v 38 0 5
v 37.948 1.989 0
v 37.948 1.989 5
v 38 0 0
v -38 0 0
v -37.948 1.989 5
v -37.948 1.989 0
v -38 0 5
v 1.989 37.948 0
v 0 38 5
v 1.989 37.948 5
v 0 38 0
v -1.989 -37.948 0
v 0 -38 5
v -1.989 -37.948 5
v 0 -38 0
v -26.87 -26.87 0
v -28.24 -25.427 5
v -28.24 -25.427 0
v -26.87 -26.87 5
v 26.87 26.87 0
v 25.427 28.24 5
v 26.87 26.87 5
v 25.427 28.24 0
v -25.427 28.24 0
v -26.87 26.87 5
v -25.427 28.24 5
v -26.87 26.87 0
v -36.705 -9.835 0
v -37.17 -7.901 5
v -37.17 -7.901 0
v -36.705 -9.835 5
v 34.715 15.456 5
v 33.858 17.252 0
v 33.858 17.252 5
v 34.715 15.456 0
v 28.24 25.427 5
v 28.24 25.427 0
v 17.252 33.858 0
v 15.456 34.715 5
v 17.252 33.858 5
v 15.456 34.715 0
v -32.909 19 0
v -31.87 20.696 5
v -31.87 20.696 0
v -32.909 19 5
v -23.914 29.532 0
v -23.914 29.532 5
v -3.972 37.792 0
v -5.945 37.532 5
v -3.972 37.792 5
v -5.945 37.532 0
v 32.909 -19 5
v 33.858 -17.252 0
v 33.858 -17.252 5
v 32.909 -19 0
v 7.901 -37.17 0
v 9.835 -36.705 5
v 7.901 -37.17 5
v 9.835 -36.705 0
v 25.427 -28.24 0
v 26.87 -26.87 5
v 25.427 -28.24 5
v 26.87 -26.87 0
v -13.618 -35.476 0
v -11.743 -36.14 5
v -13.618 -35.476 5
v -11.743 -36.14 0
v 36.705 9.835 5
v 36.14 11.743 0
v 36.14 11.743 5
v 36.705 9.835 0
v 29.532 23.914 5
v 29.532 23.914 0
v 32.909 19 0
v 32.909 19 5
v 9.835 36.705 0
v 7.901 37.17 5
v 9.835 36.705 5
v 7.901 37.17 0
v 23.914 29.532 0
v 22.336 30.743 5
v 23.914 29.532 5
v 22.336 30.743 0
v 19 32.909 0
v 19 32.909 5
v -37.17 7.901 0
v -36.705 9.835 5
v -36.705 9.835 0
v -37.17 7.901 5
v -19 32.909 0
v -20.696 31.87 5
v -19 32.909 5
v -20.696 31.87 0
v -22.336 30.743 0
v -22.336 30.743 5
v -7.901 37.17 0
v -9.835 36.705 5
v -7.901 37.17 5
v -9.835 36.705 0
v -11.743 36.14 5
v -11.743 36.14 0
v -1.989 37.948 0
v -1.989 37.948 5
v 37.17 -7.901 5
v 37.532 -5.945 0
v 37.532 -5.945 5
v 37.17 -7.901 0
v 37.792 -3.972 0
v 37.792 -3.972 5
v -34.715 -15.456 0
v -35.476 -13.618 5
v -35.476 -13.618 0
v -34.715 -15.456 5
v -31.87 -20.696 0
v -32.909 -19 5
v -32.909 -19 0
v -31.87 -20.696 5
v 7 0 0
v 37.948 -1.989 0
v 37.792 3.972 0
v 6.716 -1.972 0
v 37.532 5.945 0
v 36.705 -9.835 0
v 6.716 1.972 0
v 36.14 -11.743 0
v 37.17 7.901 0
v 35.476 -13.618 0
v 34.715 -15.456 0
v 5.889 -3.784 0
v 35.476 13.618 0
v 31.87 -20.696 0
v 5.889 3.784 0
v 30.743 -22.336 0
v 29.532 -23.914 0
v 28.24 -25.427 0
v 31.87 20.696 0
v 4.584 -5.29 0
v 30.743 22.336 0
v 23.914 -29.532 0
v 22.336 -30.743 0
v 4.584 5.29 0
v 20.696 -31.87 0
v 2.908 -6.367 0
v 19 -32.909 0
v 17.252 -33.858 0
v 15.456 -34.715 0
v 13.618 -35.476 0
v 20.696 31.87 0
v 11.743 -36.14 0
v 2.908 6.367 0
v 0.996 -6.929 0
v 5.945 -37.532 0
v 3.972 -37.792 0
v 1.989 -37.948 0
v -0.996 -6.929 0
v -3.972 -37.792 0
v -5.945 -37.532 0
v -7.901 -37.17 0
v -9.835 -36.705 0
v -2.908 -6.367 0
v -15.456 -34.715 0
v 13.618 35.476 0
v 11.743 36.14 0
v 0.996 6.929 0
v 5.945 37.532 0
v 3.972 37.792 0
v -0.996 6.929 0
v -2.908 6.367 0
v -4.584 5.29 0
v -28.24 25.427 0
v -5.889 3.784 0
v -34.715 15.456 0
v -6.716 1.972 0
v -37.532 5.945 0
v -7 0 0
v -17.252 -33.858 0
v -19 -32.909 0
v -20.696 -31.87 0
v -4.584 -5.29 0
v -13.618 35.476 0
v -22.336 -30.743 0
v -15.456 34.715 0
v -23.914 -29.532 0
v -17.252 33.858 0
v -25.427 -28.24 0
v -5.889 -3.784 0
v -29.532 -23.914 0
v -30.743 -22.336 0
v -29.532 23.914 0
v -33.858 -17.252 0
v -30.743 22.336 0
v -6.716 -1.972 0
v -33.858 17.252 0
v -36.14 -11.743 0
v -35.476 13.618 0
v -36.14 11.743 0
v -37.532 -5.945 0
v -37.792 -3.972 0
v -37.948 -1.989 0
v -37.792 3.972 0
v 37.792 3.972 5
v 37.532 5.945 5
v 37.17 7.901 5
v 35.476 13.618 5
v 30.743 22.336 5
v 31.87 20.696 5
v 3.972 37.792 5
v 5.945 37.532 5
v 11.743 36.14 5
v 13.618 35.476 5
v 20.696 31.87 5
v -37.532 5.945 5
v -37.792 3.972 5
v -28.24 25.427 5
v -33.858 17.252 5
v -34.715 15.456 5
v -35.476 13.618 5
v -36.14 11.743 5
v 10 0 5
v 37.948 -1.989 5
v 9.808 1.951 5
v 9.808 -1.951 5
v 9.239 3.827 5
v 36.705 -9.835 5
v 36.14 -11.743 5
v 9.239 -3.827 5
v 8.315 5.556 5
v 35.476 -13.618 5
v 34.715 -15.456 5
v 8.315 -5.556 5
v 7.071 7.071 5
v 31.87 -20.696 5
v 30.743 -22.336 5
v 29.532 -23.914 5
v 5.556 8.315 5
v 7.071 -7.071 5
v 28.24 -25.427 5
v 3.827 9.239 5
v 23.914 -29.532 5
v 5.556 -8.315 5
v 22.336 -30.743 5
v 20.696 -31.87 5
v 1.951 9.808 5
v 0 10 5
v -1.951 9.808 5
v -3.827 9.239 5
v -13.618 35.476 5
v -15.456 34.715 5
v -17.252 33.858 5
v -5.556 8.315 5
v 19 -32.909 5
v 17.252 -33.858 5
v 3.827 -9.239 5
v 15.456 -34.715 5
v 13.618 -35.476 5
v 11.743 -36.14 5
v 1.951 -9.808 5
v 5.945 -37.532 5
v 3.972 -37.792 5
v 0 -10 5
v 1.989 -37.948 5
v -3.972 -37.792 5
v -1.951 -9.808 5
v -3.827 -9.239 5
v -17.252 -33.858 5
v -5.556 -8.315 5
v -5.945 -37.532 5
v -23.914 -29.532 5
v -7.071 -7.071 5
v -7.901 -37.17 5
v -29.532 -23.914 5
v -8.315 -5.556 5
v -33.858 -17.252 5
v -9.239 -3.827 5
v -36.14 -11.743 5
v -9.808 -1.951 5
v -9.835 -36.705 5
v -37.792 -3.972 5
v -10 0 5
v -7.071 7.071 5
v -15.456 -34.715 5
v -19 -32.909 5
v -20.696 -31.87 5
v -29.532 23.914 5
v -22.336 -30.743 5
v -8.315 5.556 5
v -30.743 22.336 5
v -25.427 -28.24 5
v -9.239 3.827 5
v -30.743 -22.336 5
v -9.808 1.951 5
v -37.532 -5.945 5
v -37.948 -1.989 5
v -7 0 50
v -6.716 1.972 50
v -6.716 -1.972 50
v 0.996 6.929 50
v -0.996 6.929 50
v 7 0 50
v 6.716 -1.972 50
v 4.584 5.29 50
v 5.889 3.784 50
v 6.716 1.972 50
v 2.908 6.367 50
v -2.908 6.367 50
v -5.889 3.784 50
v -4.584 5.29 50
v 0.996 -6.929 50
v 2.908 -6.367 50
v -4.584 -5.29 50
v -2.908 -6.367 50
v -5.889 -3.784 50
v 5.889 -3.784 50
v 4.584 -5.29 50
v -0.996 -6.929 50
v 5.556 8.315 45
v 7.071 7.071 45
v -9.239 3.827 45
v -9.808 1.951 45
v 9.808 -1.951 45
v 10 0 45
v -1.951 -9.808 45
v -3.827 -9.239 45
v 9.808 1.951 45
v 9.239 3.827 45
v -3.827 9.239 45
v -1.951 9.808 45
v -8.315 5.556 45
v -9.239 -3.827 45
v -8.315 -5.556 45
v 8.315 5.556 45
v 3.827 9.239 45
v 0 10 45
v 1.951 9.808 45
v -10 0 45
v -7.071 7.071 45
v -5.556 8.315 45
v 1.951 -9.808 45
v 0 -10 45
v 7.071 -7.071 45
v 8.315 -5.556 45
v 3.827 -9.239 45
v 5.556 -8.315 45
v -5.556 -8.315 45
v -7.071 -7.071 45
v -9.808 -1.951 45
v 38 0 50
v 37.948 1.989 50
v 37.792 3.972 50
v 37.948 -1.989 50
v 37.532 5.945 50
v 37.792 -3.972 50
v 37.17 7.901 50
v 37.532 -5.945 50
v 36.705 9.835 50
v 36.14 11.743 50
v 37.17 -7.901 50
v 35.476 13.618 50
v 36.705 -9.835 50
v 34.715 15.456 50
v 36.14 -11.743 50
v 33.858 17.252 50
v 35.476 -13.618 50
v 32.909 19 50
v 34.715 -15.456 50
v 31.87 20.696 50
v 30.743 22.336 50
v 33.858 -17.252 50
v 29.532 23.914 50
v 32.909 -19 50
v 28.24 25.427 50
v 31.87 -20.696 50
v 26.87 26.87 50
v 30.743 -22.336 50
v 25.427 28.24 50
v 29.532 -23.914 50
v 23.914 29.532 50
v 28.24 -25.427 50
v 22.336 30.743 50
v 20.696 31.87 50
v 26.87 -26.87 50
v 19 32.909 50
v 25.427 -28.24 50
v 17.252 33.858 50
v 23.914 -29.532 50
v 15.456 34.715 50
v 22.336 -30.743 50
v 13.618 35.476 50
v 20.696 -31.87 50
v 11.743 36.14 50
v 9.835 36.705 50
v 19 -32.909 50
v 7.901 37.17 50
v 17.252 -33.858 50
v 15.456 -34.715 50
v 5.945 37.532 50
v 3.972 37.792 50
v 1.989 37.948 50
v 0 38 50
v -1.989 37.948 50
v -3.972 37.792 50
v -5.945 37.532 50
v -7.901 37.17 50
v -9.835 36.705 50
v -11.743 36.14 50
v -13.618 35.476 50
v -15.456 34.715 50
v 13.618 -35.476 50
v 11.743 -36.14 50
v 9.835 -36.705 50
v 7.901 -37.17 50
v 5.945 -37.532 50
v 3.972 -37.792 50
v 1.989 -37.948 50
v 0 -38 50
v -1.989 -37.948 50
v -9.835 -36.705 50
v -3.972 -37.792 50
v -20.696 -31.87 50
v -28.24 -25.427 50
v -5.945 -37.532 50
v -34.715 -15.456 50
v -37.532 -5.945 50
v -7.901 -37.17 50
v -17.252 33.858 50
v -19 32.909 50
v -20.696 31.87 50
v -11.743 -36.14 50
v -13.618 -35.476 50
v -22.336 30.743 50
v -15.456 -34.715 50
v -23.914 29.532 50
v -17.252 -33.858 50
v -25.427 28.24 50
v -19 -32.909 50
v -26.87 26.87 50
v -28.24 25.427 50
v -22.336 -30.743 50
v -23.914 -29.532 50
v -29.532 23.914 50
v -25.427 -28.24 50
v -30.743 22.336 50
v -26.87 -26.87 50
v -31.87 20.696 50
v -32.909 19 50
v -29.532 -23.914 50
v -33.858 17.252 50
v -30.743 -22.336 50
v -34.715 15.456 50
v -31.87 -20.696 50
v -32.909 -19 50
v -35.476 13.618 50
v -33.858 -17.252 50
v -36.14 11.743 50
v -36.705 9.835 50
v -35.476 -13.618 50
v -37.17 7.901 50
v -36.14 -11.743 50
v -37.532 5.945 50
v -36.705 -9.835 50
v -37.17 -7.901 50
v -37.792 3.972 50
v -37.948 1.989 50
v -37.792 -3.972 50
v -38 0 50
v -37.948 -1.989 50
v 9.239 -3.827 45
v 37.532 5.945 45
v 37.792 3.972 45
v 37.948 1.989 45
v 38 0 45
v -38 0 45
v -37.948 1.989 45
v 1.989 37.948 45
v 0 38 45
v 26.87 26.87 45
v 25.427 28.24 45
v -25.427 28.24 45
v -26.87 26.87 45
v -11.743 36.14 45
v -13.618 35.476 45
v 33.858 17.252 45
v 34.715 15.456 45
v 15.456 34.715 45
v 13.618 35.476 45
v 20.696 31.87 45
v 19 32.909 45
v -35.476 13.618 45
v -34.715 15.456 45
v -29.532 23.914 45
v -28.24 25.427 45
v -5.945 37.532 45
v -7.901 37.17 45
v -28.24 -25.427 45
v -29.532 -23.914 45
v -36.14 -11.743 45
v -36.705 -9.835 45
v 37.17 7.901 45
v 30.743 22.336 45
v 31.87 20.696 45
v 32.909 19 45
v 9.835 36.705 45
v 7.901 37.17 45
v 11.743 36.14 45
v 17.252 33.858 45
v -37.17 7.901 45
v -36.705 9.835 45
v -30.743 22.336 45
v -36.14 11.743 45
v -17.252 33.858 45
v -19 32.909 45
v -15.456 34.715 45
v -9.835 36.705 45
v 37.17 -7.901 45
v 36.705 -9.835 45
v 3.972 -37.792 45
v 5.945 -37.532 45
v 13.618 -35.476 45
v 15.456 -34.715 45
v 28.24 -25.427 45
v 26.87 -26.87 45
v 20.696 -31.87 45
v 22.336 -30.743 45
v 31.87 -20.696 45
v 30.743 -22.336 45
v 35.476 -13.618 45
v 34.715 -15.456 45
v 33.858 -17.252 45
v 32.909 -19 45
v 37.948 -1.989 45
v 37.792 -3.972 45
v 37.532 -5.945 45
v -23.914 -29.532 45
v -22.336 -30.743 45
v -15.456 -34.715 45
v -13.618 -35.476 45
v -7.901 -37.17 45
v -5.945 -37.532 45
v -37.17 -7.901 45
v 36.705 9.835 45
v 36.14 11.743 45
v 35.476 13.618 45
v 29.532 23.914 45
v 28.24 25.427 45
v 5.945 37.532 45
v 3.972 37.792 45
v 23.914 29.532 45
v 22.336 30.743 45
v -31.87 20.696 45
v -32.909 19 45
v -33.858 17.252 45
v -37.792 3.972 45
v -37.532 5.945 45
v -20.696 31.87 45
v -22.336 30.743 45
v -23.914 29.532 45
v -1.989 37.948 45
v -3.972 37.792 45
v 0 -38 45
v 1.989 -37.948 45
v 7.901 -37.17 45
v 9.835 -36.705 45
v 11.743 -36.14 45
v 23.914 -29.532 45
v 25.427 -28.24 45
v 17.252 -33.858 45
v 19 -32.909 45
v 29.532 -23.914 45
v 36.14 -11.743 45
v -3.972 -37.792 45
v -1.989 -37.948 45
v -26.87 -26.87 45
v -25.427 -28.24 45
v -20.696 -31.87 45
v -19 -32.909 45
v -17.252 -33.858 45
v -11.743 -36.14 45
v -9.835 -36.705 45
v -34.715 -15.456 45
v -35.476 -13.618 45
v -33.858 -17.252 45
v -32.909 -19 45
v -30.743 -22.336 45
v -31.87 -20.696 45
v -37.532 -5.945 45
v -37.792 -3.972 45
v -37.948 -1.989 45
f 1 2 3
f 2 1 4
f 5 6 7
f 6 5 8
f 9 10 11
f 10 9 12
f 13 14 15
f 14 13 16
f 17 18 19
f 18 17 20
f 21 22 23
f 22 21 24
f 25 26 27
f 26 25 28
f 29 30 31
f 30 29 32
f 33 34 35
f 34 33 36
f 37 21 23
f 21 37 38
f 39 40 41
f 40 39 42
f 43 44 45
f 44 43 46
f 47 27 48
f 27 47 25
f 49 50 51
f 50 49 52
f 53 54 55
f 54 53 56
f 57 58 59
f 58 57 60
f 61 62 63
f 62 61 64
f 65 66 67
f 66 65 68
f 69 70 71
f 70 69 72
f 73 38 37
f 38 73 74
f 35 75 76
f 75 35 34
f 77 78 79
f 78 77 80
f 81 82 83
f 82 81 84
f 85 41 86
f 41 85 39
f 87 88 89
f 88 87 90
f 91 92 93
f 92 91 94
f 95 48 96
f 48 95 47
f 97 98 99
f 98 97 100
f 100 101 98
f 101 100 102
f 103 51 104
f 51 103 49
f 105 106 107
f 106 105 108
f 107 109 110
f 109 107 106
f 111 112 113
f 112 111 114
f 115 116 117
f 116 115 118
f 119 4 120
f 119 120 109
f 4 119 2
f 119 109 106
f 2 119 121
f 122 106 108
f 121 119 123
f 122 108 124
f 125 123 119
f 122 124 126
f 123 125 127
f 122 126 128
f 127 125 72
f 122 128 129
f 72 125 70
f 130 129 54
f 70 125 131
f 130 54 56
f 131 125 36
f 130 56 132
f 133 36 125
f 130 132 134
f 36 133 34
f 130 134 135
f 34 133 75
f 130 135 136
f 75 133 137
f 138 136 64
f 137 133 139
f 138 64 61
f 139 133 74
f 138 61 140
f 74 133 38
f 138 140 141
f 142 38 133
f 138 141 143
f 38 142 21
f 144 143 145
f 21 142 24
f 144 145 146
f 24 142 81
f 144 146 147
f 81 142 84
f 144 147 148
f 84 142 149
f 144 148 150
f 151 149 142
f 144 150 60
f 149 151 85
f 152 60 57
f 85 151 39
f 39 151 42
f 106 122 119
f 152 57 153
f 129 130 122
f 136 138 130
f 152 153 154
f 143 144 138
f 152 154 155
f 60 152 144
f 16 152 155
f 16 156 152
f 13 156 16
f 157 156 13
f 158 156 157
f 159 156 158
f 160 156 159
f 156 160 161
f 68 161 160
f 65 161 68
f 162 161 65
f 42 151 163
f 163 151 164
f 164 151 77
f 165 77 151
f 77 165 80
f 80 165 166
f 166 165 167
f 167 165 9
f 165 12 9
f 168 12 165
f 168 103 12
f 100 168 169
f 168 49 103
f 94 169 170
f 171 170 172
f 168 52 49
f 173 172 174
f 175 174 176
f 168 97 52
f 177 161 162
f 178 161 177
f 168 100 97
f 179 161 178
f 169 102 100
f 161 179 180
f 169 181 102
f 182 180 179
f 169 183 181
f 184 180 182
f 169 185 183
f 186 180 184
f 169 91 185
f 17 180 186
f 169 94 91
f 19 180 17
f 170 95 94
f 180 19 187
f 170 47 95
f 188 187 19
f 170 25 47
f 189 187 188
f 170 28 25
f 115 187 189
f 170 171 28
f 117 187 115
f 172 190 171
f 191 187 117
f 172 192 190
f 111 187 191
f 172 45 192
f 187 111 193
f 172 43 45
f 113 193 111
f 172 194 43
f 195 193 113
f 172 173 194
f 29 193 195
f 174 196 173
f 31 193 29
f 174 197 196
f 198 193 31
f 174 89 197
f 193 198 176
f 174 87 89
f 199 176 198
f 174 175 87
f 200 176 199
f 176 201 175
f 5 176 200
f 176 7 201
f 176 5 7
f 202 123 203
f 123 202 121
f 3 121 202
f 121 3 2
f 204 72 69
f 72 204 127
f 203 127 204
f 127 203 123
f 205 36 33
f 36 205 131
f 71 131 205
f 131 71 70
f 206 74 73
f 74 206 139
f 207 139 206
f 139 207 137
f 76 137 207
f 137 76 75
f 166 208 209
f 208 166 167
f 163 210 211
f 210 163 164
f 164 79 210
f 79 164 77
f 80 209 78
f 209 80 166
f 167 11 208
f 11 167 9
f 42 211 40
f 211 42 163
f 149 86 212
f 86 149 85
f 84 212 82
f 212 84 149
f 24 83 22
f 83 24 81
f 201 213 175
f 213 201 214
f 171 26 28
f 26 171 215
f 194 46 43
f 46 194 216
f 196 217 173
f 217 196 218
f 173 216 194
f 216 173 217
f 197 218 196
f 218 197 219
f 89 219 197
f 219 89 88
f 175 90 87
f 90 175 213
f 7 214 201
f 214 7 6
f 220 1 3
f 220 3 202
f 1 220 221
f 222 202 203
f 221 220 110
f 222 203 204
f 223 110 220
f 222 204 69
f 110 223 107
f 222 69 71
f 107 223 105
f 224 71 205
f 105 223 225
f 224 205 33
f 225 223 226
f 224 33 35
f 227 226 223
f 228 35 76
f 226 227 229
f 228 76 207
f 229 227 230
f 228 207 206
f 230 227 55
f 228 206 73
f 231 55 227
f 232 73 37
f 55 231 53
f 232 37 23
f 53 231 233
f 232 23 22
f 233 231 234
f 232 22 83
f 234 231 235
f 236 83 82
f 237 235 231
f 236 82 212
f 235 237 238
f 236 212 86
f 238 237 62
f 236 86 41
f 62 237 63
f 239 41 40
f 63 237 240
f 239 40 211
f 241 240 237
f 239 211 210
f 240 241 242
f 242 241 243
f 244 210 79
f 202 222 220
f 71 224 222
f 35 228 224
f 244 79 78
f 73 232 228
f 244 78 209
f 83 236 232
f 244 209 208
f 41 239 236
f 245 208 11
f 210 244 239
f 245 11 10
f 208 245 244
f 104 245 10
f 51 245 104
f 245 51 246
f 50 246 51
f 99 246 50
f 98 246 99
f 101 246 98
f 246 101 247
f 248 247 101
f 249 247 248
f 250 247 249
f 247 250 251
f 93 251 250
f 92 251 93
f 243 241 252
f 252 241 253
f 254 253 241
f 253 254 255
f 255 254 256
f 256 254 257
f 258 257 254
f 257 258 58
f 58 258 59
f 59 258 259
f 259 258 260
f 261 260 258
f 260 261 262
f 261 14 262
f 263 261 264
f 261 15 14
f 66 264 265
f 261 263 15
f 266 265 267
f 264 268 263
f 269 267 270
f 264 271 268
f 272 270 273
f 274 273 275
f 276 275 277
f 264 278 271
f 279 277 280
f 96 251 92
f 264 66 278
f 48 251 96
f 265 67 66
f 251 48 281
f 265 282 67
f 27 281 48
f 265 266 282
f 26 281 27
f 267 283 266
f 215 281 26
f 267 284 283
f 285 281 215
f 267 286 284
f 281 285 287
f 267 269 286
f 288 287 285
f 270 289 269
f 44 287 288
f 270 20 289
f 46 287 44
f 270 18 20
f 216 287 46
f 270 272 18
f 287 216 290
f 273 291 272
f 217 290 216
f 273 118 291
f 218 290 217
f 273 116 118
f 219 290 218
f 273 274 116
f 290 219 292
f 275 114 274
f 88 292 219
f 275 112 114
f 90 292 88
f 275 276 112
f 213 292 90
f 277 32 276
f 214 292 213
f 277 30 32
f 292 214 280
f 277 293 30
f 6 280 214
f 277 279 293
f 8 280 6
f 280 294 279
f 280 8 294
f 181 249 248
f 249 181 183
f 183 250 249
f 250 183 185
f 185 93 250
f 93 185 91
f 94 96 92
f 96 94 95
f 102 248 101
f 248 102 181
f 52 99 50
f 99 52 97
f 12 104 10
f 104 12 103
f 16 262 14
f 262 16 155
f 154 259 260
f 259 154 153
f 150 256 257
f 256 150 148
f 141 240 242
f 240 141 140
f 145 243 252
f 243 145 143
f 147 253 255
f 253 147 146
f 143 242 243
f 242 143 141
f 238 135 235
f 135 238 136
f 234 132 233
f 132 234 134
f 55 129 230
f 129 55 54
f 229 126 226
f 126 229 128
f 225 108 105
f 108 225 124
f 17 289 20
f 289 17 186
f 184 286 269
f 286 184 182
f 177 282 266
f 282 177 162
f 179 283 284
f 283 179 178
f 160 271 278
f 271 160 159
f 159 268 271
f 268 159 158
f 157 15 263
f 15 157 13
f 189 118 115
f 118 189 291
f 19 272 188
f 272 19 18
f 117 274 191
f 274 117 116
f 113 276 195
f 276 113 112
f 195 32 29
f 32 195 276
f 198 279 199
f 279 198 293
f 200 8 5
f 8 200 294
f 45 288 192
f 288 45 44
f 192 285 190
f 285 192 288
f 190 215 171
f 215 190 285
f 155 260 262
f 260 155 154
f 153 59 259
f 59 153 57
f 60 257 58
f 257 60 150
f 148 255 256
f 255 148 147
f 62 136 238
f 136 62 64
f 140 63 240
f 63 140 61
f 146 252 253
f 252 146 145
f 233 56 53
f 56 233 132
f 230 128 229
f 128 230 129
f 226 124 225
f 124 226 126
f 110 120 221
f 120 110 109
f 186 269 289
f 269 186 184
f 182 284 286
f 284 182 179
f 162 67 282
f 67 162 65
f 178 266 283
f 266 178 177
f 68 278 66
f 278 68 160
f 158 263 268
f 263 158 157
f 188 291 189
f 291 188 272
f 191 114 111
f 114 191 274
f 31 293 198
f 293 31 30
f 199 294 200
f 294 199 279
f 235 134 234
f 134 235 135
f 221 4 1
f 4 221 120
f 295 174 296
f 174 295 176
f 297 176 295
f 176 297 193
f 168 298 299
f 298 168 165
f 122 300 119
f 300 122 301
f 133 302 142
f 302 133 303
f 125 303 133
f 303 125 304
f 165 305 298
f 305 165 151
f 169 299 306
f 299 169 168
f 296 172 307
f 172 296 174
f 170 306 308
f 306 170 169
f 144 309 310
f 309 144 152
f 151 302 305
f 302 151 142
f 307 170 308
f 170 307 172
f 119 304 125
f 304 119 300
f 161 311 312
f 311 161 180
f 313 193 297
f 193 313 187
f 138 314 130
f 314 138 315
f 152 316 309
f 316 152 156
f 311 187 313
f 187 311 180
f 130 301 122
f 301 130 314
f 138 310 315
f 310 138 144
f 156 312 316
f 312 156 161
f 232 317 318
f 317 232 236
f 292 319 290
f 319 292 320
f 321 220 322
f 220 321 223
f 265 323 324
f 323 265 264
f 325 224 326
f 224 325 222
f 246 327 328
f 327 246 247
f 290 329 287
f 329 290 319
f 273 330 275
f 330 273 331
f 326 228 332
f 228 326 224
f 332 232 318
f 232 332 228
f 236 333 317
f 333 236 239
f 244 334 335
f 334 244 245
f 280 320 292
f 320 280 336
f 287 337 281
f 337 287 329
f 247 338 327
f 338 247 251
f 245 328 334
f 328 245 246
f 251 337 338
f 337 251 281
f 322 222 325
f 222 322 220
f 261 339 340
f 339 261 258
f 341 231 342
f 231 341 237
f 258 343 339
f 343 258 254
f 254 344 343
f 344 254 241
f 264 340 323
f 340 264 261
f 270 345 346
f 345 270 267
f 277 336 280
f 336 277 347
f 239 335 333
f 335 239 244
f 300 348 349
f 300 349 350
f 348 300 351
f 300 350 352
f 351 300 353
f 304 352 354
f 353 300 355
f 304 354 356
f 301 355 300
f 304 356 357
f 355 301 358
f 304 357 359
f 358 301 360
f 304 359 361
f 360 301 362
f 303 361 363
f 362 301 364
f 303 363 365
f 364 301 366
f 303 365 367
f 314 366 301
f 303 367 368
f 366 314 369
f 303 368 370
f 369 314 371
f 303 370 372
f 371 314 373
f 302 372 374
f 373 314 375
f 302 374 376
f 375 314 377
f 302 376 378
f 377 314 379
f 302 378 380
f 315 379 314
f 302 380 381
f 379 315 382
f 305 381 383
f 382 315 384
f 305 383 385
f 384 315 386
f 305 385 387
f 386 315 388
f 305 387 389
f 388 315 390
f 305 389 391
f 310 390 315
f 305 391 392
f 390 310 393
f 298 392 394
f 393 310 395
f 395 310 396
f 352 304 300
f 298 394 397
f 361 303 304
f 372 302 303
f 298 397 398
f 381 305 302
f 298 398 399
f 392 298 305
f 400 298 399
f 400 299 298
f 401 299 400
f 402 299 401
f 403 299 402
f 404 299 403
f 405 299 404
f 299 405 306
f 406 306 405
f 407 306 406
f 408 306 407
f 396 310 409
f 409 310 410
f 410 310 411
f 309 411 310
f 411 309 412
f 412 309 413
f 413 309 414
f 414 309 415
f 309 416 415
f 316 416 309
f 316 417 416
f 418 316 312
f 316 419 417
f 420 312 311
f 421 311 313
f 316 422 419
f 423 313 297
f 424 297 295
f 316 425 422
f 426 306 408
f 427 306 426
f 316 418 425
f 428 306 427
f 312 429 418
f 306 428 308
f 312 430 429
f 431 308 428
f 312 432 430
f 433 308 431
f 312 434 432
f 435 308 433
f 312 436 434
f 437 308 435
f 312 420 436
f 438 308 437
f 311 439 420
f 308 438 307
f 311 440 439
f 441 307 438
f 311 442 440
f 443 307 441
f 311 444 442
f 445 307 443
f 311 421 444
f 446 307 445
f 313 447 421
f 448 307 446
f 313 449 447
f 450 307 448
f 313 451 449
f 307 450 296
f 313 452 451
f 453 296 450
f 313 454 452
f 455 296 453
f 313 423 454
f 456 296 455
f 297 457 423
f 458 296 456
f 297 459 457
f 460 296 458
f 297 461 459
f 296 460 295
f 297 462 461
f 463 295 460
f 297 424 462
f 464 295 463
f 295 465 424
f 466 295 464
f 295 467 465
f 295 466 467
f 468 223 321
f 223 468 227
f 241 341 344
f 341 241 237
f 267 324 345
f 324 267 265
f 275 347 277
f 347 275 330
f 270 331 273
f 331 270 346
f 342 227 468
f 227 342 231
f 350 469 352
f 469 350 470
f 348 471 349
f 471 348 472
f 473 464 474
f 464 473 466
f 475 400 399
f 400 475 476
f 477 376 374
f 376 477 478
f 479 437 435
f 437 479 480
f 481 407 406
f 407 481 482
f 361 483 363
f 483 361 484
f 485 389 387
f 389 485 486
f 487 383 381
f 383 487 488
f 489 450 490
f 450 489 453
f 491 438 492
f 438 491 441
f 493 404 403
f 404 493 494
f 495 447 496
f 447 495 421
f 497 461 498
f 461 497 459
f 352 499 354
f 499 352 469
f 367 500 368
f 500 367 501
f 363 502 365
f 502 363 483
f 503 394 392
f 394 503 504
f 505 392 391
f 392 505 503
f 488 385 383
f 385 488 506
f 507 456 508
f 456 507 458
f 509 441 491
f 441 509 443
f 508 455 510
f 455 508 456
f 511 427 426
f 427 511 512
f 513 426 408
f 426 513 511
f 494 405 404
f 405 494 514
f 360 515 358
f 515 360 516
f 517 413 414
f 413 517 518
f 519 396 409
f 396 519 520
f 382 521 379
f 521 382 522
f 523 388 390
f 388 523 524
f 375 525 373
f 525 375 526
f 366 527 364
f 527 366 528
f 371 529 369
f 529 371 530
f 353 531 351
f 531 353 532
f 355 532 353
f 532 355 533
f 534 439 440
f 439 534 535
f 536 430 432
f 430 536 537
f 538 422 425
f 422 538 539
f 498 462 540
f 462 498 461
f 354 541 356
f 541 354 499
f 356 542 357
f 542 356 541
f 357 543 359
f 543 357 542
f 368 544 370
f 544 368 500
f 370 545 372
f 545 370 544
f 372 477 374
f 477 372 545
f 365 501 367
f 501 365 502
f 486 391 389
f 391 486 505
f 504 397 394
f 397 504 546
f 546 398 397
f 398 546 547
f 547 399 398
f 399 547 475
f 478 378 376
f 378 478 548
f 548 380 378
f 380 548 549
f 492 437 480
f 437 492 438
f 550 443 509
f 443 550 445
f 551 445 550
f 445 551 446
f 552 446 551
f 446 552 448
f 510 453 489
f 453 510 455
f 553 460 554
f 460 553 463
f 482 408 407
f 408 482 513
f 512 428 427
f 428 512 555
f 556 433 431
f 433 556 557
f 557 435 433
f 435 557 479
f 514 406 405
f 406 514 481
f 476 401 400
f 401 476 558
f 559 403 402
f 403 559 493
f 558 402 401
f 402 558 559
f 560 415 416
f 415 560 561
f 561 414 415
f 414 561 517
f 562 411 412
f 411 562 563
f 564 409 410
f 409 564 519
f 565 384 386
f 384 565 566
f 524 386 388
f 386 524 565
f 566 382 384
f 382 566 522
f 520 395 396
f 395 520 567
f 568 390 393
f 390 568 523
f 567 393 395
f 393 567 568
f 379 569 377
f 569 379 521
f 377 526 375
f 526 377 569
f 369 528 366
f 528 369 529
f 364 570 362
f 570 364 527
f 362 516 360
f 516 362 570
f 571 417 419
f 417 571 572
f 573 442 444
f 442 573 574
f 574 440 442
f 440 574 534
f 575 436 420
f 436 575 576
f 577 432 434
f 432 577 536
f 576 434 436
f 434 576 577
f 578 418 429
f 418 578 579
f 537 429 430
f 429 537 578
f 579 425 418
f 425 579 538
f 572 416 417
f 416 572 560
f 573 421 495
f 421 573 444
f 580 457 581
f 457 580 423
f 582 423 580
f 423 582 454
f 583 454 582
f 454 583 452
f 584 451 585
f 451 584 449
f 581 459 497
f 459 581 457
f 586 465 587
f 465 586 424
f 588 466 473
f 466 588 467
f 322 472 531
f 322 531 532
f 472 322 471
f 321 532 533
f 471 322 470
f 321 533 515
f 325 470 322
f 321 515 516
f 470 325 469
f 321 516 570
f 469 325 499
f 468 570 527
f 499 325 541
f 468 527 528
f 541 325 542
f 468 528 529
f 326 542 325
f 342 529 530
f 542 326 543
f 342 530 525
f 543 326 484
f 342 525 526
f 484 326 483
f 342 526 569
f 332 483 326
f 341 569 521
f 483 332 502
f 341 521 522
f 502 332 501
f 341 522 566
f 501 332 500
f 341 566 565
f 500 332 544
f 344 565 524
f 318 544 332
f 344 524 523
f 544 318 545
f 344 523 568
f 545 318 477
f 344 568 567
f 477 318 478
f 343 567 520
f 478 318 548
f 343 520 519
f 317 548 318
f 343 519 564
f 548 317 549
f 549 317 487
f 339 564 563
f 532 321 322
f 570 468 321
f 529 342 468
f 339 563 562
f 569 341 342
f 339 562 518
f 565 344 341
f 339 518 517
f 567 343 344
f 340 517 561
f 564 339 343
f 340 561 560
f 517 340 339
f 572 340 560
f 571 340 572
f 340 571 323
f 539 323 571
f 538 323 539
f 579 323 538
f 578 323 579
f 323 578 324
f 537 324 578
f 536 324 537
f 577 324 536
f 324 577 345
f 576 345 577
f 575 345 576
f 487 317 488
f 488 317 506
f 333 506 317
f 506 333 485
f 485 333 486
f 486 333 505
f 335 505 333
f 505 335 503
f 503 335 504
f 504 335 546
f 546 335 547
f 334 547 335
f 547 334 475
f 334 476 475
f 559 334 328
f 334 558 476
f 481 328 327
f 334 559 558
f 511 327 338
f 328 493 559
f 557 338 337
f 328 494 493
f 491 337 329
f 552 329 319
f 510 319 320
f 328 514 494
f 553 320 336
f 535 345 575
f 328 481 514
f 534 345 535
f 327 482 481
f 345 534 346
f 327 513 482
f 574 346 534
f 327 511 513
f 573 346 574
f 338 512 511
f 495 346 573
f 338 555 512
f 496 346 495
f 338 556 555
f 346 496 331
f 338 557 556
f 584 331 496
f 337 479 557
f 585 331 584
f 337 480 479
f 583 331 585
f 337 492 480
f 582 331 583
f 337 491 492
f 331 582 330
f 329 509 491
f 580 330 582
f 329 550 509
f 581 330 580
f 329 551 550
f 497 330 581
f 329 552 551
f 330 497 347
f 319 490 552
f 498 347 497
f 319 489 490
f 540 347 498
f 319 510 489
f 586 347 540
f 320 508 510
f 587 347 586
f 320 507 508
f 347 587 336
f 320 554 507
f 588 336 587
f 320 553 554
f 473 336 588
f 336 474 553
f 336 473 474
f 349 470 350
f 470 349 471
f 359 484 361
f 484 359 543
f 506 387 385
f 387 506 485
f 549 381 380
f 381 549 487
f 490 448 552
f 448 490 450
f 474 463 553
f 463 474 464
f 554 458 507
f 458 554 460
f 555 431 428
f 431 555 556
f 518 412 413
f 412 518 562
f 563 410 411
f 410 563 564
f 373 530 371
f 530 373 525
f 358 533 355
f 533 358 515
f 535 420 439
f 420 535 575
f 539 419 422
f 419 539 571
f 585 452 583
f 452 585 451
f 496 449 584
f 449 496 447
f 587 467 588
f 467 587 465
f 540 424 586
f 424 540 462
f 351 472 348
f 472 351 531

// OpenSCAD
difference() {cylinder($fa=0.1, h=5, r=38, center=false);
    translate([0,0,-1])
    cylinder($fa=0.1, h=7, r=7, center=false);
}
difference() {
    translate([0,0,0])
    cylinder($fa=0.1, h=50, r=10, center=false);
    translate([0,0,-1])
    cylinder($fa=0.1, h=52, r=7, center=false);
}
difference() {
    translate([0,0,45])
    cylinder($fa=0.1, h=5, r=38, center=false);
    translate([0,0,44])
    cylinder($fa=0.1, h=7, r=7, center=false);
}
